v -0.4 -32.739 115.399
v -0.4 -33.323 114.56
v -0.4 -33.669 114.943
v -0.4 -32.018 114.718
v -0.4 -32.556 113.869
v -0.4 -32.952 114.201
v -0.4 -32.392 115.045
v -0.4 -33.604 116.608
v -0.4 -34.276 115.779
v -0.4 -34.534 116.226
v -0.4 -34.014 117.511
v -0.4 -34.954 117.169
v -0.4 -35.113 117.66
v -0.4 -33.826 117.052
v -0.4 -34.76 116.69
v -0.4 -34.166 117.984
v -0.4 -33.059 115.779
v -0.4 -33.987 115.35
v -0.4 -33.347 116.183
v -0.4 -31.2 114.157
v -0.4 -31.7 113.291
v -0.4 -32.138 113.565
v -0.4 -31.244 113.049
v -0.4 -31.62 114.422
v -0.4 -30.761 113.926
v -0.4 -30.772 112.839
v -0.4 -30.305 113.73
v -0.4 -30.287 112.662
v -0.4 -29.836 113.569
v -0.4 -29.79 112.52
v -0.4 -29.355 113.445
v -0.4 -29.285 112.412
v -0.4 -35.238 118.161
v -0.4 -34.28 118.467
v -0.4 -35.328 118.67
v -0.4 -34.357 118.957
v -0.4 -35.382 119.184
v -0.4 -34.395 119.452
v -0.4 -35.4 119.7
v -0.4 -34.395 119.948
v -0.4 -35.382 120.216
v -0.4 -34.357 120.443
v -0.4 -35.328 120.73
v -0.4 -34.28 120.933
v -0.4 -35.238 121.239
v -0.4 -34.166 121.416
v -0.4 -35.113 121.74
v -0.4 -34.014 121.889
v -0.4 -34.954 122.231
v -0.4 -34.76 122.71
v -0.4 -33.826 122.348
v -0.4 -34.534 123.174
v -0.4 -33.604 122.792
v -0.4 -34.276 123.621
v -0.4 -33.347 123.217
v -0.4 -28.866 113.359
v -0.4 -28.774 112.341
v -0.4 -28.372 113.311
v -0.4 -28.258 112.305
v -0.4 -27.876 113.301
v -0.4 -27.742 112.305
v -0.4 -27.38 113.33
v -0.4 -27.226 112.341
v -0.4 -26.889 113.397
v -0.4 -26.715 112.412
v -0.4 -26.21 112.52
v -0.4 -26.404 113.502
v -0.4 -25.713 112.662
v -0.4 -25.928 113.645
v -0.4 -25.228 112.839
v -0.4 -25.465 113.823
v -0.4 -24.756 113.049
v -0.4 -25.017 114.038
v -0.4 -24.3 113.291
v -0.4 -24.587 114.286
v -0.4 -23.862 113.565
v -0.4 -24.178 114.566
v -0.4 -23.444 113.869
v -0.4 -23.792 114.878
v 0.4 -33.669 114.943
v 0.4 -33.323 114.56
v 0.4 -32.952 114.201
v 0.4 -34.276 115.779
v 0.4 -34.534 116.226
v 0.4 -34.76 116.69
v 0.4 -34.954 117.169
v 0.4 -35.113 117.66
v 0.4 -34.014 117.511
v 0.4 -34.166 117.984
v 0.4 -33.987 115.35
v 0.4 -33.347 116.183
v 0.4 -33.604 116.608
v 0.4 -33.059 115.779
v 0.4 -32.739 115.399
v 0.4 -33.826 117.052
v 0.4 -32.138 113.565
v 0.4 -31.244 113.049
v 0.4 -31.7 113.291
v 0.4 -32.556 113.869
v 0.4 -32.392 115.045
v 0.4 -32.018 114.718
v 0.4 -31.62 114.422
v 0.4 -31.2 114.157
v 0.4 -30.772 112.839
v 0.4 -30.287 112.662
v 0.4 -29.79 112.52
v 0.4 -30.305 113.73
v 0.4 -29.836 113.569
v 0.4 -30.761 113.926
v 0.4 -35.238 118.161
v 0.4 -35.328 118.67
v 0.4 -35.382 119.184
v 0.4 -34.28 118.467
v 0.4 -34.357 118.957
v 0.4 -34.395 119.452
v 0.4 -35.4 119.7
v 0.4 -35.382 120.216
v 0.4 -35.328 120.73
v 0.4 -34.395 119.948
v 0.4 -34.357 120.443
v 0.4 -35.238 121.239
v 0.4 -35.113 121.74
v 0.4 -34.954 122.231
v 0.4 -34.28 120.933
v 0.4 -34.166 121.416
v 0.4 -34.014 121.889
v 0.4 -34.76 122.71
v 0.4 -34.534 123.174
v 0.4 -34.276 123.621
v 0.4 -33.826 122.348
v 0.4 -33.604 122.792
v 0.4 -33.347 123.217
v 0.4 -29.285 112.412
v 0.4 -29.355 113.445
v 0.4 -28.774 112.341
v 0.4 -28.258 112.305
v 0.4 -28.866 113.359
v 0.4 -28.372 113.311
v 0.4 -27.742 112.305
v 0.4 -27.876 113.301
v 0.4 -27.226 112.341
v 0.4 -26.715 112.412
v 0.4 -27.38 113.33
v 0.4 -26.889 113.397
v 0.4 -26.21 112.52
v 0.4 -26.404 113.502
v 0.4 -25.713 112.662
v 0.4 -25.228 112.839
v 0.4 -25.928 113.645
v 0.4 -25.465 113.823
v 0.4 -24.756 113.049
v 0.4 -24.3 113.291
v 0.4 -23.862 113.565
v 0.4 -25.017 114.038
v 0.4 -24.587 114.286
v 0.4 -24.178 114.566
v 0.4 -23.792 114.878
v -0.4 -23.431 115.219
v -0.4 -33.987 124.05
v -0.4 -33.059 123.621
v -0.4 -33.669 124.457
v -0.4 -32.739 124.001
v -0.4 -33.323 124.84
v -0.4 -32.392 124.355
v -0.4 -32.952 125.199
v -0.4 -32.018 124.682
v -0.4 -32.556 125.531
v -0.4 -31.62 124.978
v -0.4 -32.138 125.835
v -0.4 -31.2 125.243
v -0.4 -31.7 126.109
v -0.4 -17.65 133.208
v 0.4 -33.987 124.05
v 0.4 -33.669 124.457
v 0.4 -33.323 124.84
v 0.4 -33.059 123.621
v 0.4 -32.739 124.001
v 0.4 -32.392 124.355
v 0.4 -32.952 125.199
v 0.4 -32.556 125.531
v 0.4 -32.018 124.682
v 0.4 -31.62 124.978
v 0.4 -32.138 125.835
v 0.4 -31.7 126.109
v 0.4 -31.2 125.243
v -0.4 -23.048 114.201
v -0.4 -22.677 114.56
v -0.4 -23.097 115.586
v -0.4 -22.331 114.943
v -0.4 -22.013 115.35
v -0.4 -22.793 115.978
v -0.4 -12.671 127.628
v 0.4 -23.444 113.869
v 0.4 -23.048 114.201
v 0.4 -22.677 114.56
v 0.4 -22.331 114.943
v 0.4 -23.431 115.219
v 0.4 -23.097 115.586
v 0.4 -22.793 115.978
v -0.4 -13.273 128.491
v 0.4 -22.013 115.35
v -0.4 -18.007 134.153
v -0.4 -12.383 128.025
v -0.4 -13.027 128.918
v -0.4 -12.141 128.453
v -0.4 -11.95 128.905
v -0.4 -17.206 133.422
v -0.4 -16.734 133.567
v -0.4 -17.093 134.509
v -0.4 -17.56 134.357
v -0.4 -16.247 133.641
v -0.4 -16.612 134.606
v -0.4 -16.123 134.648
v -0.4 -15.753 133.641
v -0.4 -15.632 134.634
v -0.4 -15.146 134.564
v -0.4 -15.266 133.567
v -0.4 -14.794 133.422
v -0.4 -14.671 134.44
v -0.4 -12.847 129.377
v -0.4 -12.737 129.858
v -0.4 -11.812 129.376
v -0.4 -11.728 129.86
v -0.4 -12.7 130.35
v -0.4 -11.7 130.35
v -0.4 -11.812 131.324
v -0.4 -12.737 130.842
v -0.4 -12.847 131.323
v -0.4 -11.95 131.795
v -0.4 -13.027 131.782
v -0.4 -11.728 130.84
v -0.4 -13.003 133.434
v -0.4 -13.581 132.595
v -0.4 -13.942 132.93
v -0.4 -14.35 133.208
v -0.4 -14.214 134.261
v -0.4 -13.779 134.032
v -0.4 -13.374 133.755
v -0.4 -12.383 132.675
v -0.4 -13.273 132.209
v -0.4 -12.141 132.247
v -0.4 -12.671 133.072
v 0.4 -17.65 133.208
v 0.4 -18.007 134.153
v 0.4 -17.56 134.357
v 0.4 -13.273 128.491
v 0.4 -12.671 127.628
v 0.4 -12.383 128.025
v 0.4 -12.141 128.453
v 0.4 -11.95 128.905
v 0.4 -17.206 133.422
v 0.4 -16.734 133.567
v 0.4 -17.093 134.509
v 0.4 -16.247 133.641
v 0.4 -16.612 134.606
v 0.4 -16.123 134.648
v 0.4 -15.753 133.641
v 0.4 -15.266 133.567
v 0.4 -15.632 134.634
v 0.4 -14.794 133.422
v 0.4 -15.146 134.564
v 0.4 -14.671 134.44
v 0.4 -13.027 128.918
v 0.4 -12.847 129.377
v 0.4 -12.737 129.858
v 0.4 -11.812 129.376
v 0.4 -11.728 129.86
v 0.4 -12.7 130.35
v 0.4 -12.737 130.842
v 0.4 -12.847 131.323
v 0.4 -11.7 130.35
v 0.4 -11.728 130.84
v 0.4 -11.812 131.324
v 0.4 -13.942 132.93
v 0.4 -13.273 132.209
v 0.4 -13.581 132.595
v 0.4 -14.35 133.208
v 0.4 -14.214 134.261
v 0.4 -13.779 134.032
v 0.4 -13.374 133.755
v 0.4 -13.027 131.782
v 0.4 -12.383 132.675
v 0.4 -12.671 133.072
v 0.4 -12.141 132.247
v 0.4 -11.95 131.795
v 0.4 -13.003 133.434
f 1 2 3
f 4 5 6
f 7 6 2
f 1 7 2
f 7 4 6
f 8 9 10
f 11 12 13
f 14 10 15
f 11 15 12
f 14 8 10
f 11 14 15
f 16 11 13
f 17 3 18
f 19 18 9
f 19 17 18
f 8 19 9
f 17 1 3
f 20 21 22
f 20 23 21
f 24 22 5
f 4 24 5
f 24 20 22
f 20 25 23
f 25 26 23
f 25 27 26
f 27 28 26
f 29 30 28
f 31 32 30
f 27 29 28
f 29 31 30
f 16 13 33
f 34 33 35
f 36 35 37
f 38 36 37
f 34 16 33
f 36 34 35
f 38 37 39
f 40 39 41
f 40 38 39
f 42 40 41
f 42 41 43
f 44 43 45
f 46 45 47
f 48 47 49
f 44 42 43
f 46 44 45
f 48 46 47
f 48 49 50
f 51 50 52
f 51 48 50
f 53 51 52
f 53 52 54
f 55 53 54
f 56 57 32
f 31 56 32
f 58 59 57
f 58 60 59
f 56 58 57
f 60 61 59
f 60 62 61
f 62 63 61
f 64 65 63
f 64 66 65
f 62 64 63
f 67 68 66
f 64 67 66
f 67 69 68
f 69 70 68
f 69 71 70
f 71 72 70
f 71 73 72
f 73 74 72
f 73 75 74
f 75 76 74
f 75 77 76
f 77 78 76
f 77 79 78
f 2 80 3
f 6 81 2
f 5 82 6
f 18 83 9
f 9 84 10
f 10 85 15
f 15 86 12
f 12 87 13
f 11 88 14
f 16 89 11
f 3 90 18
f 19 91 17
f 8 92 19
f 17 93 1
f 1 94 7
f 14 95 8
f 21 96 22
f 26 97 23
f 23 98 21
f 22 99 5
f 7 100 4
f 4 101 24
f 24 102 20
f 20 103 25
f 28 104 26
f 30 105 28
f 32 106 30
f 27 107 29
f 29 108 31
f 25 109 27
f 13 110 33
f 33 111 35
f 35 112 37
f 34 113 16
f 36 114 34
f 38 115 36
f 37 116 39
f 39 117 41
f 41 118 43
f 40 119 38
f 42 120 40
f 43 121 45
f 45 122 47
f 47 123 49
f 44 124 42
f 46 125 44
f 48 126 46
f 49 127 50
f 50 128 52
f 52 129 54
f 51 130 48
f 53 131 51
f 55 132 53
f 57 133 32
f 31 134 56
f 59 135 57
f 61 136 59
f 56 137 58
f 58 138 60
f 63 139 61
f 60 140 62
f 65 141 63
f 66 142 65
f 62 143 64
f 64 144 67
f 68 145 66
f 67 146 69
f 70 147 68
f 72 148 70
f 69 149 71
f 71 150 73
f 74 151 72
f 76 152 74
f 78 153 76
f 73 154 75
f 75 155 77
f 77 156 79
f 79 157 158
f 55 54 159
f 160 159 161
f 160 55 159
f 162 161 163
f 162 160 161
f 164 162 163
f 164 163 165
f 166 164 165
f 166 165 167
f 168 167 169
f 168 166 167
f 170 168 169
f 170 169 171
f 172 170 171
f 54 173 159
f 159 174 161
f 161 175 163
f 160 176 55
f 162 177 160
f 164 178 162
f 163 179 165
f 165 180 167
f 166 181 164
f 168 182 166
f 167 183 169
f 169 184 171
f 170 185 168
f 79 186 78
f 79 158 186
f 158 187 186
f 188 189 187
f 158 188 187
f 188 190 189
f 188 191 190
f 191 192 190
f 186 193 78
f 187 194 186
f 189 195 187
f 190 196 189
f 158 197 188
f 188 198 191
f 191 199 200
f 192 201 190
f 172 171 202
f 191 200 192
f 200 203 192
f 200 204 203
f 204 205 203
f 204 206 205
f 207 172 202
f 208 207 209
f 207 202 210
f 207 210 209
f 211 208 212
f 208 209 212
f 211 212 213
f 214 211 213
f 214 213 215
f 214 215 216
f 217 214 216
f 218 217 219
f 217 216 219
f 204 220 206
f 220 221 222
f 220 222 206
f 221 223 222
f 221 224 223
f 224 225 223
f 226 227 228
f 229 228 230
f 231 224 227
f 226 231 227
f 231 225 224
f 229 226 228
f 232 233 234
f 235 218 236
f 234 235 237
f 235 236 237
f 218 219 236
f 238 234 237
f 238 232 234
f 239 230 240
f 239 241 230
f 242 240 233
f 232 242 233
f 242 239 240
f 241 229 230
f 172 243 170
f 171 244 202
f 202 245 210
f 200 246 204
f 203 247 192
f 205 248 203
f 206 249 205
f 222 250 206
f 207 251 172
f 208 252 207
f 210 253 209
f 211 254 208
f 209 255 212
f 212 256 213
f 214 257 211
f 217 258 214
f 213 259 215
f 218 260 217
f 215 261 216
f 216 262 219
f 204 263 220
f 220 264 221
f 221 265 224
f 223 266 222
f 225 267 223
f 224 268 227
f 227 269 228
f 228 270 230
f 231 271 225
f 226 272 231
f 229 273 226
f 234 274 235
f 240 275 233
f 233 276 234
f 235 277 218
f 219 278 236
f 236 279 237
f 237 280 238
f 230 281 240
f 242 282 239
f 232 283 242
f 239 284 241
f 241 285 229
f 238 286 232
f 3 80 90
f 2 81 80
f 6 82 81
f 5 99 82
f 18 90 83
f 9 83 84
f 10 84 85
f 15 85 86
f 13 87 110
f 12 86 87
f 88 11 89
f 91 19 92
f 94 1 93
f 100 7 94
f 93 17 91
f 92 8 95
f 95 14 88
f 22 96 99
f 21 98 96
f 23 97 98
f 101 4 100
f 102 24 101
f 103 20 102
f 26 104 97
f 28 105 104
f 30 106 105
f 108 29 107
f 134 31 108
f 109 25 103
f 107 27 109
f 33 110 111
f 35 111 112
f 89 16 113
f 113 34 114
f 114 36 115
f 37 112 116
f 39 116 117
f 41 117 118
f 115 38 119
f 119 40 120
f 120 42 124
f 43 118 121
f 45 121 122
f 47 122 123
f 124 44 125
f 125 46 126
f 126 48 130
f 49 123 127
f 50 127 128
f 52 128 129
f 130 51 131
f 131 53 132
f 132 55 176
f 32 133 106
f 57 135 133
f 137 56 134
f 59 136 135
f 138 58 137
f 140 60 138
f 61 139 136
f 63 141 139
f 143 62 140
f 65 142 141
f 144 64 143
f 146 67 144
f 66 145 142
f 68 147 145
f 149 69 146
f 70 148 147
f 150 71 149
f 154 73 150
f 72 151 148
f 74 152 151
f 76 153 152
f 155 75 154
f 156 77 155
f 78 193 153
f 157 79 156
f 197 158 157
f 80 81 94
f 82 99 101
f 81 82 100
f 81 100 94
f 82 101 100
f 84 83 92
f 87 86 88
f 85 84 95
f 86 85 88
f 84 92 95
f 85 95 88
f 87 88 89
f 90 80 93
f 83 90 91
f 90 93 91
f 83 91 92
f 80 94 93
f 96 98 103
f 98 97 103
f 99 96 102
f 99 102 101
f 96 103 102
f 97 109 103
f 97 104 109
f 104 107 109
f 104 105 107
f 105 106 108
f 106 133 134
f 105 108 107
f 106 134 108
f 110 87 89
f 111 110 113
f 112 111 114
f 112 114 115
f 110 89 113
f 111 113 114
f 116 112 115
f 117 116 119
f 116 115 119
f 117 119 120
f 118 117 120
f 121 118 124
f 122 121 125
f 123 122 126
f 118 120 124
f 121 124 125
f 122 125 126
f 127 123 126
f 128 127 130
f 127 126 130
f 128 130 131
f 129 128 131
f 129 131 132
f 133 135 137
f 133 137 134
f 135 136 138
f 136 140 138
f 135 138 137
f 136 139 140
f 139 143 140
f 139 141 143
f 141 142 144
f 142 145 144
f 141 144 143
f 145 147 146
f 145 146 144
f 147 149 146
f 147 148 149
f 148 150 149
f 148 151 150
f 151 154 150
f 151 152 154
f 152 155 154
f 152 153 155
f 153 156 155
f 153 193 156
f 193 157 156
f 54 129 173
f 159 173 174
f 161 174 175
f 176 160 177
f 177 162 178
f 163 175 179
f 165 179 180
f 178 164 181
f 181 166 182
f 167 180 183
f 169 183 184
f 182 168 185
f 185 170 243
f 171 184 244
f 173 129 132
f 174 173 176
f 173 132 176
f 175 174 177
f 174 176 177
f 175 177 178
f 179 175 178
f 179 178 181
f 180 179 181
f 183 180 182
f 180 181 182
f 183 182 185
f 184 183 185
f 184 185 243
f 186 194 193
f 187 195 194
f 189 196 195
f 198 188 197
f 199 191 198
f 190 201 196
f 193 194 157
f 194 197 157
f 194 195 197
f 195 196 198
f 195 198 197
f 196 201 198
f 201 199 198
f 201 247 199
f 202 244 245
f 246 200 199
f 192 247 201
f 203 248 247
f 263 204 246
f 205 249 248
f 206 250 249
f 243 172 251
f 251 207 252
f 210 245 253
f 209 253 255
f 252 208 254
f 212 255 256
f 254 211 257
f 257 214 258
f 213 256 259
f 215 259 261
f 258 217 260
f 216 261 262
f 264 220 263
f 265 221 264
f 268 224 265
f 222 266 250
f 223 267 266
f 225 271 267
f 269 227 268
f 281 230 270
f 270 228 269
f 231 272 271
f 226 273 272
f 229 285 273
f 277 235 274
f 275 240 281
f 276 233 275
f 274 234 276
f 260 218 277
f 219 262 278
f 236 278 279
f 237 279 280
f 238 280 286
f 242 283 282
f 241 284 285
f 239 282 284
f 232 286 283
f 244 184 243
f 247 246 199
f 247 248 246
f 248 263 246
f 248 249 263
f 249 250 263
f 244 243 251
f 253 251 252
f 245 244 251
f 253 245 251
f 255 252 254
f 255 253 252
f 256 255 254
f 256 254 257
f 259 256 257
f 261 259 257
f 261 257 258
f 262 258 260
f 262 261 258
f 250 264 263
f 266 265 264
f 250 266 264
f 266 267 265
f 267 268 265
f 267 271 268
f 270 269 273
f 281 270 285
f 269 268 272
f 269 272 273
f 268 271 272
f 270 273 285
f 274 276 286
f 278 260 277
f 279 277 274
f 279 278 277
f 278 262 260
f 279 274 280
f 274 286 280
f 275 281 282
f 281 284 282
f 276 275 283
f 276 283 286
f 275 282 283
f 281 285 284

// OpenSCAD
// file: ../lib/lib.scad
// Shared helpers. Include AFTER params.scad (needs TOL, M3_* etc.).
$fa = 4; $fs = 0.5;

module rrect(size, r) {            // 2D rounded rectangle, centred
    r2 = min(r, min(size[0], size[1]) / 2 - 0.001);
    offset(r = r2) square([size[0] - 2 * r2, size[1] - 2 * r2], center = true);
}
module rbox(size, r, center_xy = true) {   // box with rounded vertical edges
    translate(center_xy ? [0, 0, 0] : [size[0] / 2, size[1] / 2, 0])
        linear_extrude(size[2]) rrect([size[0], size[1]], r);
}
module rbox_at(x0, x1, y0, y1, z0, z1, r = 0.01) {
    translate([(x0 + x1) / 2, (y0 + y1) / 2, z0]) rbox([x1 - x0, y1 - y0, z1 - z0], r);
}
module box_at(x0, x1, y0, y1, z0, z1) { translate([x0, y0, z0]) cube([x1 - x0, y1 - y0, z1 - z0]); }

module ring(ro, ri, h) { difference() { cylinder(r = ro, h = h); translate([0, 0, -1]) cylinder(r = ri, h = h + 2); } }
module ring_sector(ro, ri, h, a0, a1) {
    intersection() {
        ring(ro, ri, h);
        linear_extrude(h) polygon(concat([[0, 0]], [for (a = [a0 : (a1 - a0) / 24 : a1]) 2 * ro * [cos(a), sin(a)]]));
    }
}
// teardrop hole along an axis lying horizontal (axis = Y after rotation), printable w/o support
module teardrop2d(d) { union() { circle(d = d); rotate(45) square(d / 2); } }
// vertical heat-set insert hole, opening at z=0 going +z (depth l)
module insert_hole(l = M3_INSERT_L) { translate([0, 0, -EPS]) cylinder(d = M3_INSERT_D, h = l + EPS); }
module m3_clear(l) { translate([0, 0, -EPS]) cylinder(d = M3_CLEAR, h = l + 2 * EPS); }
module m3_csk(l) {  // countersunk clearance from z=0 upward, head at z=0 side
    translate([0, 0, -EPS]) { cylinder(d = M3_CLEAR, h = l + 2 * EPS); cylinder(d1 = 6.4, d2 = M3_CLEAR, h = 1.7); }
}
module card2d() { rrect([CARD_L, CARD_W], CARD_R); }
module card_at(cy, z) { translate([0, cy, z]) linear_extrude(CARD_T) card2d(); }

// ---- gears ----
function _inv(a) = tan(a) - a * PI_ / 180;           // involute function, a in deg
function _invpt(rb, r, ang0, s) = let(al = acos(rb / r), th = ang0 - s * (_inv(al) * 180 / PI_)) [r * cos(th), r * sin(th)];
module involute_gear2d(m, z, pa = 20, clearance = 0.05) {
    rp = m * z / 2; rb = rp * cos(pa); ra = rp + m - clearance; rf = rp - 1.25 * m;
    half = 90 / z + _inv(pa) * 180 / PI_;            // tooth half-angle at base (deg)
    n = 8;
    rs = [for (i = [0 : n]) max(rb, rf) + (ra - max(rb, rf)) * i / n];
    union() {
        circle(r = rf, $fn = z * 4);
        for (k = [0 : z - 1]) rotate(k * 360 / z) polygon(concat(
            [[rf * cos(-half), rf * sin(-half)]],
            [for (r = rs) let(p = _invpt(rb, r, half, 1)) [p[0], -p[1]]],
            [for (i = [n : -1 : 0]) _invpt(rb, rs[i], half, 1)],
            [[rf * cos(half), rf * sin(half)]]));
    }
}
// straight gear rack (2D in XY: teeth along +x, pointing -y, pitch line at y=0)
module gear_rack2d(m, len, back = 3) {
    p = PI_ * m; ad = m; de = 1.25 * m; t = tan(20);
    n = ceil(len / p) + 1;
    intersection() {
        union() {
            translate([0, de]) square([len, back]);
            for (i = [0 : n]) if (i * p - p / 4 - (p / 4 + de * t) >= 0 && i * p + de * t <= len) translate([i * p - p / 4, 0]) polygon([
                [-(p / 4 + de * t), de + 0.01], [p / 4 + de * t + 0.01, de + 0.01],
                [p / 4 - ad * t, -ad], [-(p / 4 - ad * t), -ad] ]);
        }
        translate([0, -ad - 1]) square([len, ad + de + back + 2]);
    }
}
// GT2 belt-tooth profile ring (teeth outward), 2D
module gt2_ring2d(n, r_land, ri) {
    union() {
        difference() { circle(r = r_land + 0.01, $fn = n * 2); circle(r = ri, $fn = n * 2); }
        for (k = [0 : n - 1]) rotate(k * 360 / n)
            translate([r_land, 0]) hull() { translate([-0.2, 0]) square([0.2, 1.0], center = true); translate([0.25, 0]) circle(r = 0.5, $fn = 12); }
    }
}
// main file
// Vendor model: 1.5 mm nitrile O-ring cord belt (feed shaft -> pinch shaft, -X side).
// Local: belt loop in the YZ plane at x = 0 (world: X = BELT_X), modelled as the cord core.
include <../params.scad>
include <../lib/lib.scad>
module vendor_o_ring_belt() color([0.15,0.15,0.15]) rotate([90, 0, 90]) linear_extrude(0.8, center = true) difference() {
    hull() { translate([FEED_Y, FEED_Z]) circle(r = PUL_FEED_D / 2 + 1.4); translate([PINCH_Y, PINCH_Z]) circle(r = PUL_PINCH_D / 2 + 1.4); }
    hull() { translate([FEED_Y, FEED_Z]) circle(r = PUL_FEED_D / 2 + 0.4); translate([PINCH_Y, PINCH_Z]) circle(r = PUL_PINCH_D / 2 + 0.4); }
}
vendor_o_ring_belt();
